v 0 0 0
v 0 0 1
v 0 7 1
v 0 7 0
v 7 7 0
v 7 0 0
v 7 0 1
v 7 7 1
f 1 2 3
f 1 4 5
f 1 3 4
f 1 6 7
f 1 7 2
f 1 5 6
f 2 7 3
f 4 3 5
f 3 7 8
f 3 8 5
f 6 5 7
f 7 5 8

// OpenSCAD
/* Warning, this is a very basic generator with a lot of approximation 
input data : [TFBGA, GWX, 7x7x1.0mm, 129, , A, C04-00327A]
generated by com.zoubworld.electronics.cad.model3d.Basic
Date : Sun Feb 15 10:50:48 CET 2026
*/

//body
color("black")
translate([0,0,0])
cube([7.0,7.0,1.0], center=false);
